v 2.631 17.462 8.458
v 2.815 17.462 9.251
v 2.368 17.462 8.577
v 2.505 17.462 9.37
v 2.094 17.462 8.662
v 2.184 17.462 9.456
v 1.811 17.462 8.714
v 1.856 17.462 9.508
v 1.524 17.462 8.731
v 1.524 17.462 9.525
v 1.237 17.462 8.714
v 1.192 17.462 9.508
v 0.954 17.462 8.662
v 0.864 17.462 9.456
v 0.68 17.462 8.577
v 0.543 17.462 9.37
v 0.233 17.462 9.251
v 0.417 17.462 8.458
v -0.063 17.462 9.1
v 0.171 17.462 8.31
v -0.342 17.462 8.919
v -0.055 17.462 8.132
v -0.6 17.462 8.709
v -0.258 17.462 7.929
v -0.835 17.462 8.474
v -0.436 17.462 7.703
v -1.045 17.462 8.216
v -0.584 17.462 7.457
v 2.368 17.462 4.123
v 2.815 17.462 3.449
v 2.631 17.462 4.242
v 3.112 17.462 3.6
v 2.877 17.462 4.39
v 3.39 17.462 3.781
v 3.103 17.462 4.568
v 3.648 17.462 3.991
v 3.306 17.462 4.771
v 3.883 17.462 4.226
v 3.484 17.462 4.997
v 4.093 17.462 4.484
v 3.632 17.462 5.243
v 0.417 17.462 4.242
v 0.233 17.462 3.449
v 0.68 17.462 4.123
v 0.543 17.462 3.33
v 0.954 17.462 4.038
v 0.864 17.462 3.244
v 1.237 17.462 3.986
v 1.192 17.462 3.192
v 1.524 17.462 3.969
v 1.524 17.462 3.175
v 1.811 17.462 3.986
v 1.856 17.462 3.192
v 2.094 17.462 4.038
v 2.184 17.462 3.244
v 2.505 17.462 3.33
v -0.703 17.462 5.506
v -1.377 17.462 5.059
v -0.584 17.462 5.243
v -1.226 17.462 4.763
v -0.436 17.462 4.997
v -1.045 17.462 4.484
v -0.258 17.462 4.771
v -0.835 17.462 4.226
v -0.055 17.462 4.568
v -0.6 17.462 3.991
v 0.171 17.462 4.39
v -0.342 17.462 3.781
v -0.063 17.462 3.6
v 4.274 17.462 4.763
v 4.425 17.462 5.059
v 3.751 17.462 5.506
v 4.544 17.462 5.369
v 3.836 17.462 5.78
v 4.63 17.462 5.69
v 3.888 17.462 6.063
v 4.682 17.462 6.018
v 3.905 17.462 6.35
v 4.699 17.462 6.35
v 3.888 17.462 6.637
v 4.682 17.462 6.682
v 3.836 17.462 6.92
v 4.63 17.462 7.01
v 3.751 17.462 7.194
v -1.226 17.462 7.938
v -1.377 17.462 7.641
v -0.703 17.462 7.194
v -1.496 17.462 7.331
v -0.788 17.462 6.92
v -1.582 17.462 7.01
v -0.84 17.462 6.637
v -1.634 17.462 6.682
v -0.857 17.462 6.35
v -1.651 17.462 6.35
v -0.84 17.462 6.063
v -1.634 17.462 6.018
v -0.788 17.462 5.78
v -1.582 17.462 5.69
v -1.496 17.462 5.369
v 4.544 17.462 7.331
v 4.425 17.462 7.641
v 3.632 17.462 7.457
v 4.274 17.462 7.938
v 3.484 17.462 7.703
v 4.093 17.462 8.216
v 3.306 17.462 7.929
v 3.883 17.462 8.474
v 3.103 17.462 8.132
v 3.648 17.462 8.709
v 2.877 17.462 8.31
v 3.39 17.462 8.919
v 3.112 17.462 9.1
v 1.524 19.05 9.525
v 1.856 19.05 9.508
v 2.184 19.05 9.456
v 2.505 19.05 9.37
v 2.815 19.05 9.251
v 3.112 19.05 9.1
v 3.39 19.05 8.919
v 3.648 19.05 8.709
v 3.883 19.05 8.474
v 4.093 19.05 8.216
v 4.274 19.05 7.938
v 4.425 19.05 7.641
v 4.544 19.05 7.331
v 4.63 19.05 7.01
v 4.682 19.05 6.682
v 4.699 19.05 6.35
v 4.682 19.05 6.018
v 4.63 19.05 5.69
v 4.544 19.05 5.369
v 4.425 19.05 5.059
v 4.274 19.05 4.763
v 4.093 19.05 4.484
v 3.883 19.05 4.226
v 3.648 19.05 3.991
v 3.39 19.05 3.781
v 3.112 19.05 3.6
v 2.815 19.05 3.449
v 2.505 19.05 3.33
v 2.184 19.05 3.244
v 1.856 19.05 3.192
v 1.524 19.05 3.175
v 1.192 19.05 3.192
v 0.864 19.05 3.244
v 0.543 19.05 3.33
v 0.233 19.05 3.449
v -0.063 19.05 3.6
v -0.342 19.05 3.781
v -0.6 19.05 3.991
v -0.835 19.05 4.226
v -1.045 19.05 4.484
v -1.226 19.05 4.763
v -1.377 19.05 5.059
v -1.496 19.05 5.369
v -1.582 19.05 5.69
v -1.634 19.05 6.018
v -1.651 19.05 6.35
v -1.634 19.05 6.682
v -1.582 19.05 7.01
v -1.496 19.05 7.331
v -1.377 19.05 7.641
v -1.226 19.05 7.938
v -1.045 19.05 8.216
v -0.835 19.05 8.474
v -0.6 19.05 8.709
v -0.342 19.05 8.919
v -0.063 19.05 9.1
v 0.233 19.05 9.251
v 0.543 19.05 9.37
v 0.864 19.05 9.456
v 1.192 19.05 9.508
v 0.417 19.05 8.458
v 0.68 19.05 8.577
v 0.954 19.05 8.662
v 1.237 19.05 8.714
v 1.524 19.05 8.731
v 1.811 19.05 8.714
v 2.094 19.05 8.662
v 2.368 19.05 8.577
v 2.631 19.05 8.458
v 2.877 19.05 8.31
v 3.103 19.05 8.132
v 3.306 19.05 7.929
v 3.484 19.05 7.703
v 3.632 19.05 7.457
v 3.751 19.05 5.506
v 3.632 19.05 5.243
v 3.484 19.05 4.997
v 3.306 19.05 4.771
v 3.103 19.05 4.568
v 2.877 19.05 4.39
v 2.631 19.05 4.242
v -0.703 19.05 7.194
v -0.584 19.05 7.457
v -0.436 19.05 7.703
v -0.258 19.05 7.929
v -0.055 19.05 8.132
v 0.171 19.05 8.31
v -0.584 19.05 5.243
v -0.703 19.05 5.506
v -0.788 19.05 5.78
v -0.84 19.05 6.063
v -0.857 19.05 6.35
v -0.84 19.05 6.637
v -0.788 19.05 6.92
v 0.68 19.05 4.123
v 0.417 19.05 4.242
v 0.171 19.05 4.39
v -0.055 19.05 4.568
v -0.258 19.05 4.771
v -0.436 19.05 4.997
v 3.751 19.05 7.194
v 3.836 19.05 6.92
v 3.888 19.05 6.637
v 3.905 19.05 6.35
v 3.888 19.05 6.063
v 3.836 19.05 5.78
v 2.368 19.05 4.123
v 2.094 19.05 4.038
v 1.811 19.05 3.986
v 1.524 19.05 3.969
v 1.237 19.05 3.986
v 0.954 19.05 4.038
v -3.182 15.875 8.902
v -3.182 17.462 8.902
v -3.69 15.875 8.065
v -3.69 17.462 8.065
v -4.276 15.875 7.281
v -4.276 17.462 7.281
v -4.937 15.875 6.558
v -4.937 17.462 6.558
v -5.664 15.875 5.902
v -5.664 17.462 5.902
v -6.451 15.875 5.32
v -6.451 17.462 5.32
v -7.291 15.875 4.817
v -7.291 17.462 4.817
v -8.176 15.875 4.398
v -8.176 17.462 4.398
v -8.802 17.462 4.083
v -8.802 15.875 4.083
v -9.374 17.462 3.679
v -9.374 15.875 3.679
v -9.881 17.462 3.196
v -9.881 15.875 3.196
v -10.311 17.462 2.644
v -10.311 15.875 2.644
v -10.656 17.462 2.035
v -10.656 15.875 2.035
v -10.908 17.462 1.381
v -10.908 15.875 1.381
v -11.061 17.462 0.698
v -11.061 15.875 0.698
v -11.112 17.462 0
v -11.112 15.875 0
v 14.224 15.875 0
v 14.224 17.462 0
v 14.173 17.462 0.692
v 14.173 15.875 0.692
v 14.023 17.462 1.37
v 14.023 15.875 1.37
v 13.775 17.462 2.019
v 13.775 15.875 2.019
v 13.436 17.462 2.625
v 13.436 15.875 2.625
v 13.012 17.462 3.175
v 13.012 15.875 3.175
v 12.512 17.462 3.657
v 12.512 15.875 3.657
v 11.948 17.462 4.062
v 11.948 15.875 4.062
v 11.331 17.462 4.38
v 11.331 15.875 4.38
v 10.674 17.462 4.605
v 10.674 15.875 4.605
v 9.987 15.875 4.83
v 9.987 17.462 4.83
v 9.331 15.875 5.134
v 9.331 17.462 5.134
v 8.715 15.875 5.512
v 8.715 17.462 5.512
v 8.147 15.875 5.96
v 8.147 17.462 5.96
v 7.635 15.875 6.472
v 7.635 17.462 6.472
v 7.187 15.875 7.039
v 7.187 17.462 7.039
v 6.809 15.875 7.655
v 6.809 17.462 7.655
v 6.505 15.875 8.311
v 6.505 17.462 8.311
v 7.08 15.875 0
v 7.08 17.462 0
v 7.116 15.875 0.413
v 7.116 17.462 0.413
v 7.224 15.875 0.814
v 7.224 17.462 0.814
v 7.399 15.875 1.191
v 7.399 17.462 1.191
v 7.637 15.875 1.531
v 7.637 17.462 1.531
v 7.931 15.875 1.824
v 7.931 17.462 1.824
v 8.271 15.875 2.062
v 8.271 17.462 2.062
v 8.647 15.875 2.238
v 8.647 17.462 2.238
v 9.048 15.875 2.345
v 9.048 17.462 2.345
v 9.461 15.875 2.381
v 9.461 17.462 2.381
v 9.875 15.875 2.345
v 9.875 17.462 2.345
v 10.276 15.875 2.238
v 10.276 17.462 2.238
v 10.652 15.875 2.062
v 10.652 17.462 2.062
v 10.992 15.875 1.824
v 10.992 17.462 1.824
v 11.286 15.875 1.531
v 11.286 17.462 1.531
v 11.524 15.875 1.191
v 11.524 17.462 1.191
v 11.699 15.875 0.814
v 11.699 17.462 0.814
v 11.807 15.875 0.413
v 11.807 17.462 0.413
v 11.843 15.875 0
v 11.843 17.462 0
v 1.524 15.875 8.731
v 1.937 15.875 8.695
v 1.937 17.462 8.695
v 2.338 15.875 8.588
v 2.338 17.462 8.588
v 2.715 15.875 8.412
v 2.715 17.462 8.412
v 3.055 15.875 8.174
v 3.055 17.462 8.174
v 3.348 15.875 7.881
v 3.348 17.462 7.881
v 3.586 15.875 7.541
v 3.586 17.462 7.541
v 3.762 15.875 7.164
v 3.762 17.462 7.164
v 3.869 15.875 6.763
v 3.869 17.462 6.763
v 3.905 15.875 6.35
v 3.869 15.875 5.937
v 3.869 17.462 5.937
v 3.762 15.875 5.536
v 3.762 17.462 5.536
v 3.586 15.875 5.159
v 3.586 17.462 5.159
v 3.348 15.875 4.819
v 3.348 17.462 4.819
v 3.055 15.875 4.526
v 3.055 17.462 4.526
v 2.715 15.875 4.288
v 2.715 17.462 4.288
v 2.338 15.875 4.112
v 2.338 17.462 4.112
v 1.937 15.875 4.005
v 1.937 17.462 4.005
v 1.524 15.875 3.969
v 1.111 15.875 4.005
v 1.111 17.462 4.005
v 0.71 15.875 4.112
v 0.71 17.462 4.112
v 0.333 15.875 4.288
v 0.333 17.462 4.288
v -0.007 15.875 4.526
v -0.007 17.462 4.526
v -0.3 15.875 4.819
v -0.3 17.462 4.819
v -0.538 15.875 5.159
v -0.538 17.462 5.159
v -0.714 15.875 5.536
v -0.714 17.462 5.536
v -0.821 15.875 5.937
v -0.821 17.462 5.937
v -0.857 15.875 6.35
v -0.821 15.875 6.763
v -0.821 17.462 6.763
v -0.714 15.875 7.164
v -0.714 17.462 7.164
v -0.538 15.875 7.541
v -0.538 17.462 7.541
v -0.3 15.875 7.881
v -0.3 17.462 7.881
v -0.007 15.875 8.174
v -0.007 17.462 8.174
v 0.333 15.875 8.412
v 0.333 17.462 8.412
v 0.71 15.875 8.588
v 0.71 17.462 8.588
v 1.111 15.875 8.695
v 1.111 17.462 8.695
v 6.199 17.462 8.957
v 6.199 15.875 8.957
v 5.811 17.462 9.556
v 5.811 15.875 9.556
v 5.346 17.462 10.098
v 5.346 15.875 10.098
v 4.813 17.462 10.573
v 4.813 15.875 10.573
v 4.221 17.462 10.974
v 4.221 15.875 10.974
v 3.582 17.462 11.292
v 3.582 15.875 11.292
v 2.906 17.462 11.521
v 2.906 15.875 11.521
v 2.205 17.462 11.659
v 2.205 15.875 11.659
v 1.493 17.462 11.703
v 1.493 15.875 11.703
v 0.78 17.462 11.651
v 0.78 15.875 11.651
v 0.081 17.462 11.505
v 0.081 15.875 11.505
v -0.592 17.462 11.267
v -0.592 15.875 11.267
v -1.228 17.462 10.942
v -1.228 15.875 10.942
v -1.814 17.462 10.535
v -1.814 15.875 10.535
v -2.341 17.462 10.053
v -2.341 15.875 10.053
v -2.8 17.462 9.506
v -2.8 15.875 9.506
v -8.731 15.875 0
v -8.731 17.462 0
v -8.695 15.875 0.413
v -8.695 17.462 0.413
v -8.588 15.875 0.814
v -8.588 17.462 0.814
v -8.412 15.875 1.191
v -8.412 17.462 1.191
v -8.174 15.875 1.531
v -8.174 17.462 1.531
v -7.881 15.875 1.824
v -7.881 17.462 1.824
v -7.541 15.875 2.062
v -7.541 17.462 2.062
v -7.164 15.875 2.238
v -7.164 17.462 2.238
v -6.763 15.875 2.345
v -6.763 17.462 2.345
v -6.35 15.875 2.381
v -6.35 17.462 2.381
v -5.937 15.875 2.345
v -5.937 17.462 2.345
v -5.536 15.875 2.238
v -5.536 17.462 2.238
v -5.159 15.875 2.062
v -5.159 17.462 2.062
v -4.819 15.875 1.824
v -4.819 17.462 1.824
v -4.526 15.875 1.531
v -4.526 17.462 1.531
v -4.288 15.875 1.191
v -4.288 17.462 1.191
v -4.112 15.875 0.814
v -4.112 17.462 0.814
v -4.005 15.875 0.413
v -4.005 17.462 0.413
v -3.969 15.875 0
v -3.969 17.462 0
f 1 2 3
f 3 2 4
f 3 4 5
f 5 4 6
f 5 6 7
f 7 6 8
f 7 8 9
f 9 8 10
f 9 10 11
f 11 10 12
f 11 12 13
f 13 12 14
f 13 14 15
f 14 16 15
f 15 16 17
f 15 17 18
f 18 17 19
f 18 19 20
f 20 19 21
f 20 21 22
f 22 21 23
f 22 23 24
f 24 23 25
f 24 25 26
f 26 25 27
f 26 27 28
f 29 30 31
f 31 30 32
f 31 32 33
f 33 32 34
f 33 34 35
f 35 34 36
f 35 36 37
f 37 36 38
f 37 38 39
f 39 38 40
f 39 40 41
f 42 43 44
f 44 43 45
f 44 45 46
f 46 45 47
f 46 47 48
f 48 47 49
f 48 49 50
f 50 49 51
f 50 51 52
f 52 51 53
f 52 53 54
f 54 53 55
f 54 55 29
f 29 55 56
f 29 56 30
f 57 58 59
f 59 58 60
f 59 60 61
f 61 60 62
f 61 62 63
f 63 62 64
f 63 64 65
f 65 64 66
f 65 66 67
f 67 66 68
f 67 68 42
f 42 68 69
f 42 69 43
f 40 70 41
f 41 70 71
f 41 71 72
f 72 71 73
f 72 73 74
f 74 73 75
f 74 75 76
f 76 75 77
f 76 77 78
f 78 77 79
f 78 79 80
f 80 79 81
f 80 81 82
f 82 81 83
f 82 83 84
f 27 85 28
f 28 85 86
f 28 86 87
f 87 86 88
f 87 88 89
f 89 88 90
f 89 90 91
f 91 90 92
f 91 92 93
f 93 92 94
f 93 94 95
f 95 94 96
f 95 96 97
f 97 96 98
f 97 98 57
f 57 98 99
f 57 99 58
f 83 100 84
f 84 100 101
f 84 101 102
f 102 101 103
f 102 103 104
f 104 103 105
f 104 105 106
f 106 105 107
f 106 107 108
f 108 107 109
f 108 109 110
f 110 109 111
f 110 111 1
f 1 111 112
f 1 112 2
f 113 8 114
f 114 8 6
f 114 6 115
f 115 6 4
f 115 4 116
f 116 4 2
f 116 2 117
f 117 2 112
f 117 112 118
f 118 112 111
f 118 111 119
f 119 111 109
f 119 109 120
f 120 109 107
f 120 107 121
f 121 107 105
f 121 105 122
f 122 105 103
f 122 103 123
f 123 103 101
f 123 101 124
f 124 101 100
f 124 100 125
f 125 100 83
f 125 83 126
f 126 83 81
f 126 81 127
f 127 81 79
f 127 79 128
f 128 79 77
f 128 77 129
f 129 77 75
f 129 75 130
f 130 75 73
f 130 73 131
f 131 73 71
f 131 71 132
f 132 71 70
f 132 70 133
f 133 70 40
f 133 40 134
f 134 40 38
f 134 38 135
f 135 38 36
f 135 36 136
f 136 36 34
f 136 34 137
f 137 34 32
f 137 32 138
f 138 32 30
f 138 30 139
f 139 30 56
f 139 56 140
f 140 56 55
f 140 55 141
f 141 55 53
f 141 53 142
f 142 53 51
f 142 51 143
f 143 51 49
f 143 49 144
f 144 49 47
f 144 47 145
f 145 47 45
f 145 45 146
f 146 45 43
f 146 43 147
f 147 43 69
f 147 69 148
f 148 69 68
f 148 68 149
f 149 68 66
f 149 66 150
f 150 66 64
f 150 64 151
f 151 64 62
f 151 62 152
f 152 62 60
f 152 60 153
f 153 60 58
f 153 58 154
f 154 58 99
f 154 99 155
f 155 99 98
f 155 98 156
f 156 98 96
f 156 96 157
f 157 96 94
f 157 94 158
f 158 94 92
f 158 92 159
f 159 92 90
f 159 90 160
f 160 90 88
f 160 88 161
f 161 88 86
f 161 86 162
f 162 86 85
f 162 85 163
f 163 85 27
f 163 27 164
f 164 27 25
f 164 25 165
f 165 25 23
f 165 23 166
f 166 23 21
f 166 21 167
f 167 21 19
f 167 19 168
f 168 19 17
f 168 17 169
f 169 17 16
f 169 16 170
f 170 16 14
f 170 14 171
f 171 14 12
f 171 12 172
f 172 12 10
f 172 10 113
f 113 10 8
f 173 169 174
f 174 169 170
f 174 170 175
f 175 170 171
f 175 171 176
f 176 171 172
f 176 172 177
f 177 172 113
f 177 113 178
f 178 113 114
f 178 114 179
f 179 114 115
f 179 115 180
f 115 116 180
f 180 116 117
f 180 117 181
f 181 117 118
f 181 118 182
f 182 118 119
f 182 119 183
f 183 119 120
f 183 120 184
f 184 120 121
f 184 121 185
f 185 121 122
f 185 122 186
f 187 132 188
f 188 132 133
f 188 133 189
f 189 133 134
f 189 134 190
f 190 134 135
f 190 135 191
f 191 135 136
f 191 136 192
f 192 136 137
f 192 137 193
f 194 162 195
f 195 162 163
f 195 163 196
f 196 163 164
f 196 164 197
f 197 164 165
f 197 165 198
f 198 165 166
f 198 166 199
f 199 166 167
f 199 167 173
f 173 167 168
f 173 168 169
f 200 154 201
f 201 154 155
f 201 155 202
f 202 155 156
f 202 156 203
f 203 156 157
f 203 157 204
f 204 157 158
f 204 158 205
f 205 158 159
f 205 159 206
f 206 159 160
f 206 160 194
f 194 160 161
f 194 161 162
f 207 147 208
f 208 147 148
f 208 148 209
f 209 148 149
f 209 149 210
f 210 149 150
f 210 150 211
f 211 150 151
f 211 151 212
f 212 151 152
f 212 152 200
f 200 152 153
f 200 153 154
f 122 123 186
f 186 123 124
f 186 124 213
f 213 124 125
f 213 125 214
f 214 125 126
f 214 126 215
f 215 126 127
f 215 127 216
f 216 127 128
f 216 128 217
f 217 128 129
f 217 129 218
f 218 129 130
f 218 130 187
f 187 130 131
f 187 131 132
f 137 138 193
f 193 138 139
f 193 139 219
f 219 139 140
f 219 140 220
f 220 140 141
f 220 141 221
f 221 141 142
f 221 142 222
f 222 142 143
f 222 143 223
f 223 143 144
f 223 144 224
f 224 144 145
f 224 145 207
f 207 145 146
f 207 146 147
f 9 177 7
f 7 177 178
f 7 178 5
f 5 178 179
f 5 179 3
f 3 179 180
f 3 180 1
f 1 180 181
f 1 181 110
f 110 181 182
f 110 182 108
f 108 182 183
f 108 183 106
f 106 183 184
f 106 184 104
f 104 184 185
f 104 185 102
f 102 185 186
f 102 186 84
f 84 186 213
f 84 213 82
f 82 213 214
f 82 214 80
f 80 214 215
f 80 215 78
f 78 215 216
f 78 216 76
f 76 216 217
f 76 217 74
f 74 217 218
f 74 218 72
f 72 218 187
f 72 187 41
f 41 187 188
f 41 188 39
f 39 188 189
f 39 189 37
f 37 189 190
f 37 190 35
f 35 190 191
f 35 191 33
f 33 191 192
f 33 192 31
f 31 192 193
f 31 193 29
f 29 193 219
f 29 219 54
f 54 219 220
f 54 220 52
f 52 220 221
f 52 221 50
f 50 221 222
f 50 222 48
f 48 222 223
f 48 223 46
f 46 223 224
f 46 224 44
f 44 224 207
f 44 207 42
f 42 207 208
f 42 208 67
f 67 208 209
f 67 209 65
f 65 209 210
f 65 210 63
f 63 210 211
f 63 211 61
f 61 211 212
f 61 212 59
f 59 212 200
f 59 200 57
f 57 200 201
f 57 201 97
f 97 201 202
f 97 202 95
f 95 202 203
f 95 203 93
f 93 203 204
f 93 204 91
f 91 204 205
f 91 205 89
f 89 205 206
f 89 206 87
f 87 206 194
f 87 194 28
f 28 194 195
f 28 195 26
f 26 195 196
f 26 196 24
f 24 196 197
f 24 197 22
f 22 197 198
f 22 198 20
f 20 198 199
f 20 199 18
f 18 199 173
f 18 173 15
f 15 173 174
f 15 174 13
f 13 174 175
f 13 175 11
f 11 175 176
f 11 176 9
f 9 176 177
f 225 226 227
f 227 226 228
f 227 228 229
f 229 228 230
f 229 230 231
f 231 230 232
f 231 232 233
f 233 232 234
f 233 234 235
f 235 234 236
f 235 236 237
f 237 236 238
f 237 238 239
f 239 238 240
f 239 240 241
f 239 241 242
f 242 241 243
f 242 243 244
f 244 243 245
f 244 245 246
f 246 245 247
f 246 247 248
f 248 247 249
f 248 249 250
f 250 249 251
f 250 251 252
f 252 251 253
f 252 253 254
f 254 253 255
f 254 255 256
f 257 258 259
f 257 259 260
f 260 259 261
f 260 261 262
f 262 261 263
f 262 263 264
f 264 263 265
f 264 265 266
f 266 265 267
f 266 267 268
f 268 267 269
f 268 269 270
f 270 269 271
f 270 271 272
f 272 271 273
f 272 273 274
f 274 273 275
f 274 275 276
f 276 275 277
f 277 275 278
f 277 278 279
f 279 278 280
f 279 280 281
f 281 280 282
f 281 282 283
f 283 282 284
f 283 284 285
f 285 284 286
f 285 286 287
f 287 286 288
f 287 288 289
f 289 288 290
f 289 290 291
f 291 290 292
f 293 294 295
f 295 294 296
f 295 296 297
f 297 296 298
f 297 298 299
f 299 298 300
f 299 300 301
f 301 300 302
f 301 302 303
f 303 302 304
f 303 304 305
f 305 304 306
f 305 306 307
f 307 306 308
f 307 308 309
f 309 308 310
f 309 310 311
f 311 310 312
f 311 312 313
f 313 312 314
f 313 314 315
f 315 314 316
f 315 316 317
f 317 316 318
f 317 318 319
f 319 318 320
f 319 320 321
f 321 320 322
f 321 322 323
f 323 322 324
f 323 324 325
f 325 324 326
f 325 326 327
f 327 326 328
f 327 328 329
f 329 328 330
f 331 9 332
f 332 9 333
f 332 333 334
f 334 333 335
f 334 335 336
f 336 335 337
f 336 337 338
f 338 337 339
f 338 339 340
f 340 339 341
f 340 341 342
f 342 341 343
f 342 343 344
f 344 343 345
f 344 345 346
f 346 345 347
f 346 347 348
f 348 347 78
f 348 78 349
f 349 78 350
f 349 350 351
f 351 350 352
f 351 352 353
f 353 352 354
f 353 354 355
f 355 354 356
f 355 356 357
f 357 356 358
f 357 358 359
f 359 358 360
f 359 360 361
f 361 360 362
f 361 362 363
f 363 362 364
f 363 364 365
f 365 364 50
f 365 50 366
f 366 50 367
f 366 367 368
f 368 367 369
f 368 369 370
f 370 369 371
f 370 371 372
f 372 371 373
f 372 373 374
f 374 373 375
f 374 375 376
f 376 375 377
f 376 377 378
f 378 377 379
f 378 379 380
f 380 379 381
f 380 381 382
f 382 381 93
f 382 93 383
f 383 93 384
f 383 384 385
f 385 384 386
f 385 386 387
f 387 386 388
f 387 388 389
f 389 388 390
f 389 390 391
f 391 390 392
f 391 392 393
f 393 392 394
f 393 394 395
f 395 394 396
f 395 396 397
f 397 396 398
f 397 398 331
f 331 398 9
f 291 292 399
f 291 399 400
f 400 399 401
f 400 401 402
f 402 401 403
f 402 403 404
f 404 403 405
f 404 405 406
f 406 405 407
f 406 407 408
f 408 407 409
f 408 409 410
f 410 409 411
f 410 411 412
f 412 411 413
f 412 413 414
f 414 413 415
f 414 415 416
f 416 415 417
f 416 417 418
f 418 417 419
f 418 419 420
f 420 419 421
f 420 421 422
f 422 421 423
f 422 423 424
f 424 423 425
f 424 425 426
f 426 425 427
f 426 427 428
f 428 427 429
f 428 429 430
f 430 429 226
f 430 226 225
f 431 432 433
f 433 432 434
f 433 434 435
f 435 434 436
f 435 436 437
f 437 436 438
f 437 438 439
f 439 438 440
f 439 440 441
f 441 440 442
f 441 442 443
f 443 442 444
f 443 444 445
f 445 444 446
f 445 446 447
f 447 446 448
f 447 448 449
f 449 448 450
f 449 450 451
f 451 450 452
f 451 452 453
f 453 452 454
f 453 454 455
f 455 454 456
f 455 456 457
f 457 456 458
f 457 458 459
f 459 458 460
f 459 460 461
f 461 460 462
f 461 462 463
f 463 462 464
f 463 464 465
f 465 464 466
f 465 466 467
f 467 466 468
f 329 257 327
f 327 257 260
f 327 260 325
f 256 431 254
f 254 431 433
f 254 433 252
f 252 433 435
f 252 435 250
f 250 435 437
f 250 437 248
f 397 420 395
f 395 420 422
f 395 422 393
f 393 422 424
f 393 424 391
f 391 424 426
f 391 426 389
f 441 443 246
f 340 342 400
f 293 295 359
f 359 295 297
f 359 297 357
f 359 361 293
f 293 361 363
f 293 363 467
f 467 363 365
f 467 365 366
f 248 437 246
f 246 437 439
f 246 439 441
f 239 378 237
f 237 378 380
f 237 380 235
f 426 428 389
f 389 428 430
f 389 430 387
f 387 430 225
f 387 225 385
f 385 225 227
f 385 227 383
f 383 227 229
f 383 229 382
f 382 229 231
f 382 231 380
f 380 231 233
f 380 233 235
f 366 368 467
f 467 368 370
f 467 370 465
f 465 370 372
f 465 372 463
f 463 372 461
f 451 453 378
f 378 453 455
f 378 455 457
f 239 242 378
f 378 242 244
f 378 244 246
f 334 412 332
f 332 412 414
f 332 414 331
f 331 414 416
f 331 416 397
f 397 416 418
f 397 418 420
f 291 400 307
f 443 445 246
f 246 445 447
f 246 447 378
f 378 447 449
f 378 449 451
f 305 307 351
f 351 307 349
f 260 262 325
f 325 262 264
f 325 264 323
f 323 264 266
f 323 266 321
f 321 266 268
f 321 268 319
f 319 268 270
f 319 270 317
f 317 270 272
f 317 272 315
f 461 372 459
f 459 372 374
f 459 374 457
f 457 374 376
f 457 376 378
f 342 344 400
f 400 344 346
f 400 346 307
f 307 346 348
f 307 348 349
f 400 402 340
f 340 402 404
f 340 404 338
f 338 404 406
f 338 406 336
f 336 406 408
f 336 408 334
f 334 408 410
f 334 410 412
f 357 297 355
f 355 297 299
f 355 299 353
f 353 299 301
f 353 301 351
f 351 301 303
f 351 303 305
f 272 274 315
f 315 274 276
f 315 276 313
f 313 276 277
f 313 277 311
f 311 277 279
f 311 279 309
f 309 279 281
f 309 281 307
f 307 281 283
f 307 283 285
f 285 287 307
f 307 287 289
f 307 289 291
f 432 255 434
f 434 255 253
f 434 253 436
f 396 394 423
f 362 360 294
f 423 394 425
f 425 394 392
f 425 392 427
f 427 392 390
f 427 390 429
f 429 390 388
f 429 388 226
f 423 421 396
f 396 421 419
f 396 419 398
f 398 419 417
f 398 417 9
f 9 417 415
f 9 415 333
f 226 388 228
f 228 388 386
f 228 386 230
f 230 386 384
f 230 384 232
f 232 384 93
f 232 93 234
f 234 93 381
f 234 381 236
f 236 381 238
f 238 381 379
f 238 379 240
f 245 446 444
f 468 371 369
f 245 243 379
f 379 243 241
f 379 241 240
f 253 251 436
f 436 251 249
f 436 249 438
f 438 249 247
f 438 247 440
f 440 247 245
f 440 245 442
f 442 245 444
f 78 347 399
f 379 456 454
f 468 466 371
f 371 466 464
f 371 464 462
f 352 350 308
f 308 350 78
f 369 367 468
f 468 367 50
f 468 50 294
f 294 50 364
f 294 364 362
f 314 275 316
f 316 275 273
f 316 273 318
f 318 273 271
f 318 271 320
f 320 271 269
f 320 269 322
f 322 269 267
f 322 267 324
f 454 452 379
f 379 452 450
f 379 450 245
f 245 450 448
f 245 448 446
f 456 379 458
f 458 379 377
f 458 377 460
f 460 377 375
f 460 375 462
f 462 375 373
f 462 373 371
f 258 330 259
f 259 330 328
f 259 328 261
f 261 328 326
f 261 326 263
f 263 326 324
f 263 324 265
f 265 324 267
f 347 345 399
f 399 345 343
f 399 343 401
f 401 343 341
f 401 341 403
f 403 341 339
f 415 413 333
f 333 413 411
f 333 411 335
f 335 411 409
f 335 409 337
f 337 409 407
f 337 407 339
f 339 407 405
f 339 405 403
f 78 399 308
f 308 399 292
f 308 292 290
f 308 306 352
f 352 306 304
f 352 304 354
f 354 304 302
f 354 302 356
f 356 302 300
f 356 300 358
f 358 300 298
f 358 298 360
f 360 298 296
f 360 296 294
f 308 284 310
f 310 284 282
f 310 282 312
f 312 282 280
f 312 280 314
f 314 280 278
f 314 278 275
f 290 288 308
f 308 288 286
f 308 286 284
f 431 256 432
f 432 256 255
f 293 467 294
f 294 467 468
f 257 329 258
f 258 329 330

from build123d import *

# Parameters (mm, degrees)
SKETCH1_R           = 2.38125
BOSS_EXTRUDE1_DEPTH = 1.5875
SKETCH2_R           = 3.175
BOSS_EXTRUDE2_DEPTH = 1.5875
SKETCH3_R           = 2.38125
BOSS_EXTRUDE3_DEPTH = 19.05
SKETCH4_R           = 3.175
BOSS_EXTRUDE4_DEPTH = 1.5875
SKETCH5_R           = 2.38125
BOSS_EXTRUDE5_DEPTH = 1.5875
SKETCH6_R           = 2.38125
CUT_EXTRUDE1_DEPTH  = 28.662025878
SKETCH7_W           = 40.69090725
SKETCH7_H           = 20.005301762
CUT_EXTRUDE2_DEPTH  = 26.381492779
CUT_EXTRUDE3_DEPTH  = 19.487872394


with BuildPart() as part:
    # Sketch1 → Boss-Extrude1 (new body)
    with BuildSketch(Plane(origin=(0, 0, 0), x_dir=(1, 0, 0), z_dir=(0, 1, 0))):
        with BuildLine():
            Line((9.398005644, 4.762076723), (-6.35, 4.7625))
            ThreePointArc((-6.35, 4.7625), (-11.020584629, 0.931152767), (-8.176363381, -4.398386414))
            ThreePointArc((-8.176363381, -4.398386414), (-5.292234705, -6.221263486), (-3.181508348, -8.901918869))
            ThreePointArc((-3.181508348, -8.901918869), (1.849687492, -11.693035316), (6.504625866, -8.311495529))
            ThreePointArc((6.504625866, -8.311495529), (8.146827792, -5.96033805), (10.67447942, -4.60544104))
            ThreePointArc((10.67447942, -4.60544104), (14.180390361, 0.643024113), (9.398005644, 4.762076723))
        make_face()
        with Locations(Location((-6.35, 0, 0), (0, 0, 270))):
            Circle(SKETCH1_R, mode=Mode.SUBTRACT)
        with Locations(Location((9.4615, 0, 0), (0, 0, 270))):
            Circle(SKETCH1_R, mode=Mode.SUBTRACT)
        with Locations(Location((1.524, -6.35, 0), (0, 0, 270))):
            Circle(SKETCH1_R, mode=Mode.SUBTRACT)
    extrude(amount=BOSS_EXTRUDE1_DEPTH)

    # Sketch2 → Boss-Extrude2 (add)
    with BuildSketch(Plane.XZ):
        with Locations(Location((1.524, 6.35, 0), (0, 0, 90))):
            Circle(SKETCH2_R)
    extrude(amount=BOSS_EXTRUDE2_DEPTH)

    # Sketch3 → Boss-Extrude3 (add)
    with BuildSketch(Plane(origin=(0, 0, 0), x_dir=(1, 0, 0), z_dir=(0, 1, 0))):
        with Locations(Location((1.524, -6.35, 0), (0, 0, 90))):
            Circle(SKETCH3_R)
    extrude(amount=BOSS_EXTRUDE3_DEPTH)

    # Sketch4 → Boss-Extrude4 (add)
    with BuildSketch(Plane(origin=(0, 19.05, 0), x_dir=(1, 0, 0), z_dir=(0, 1, 0))):
        with Locations(Location((1.524, -6.35, 0), (0, 0, 270))):
            Circle(SKETCH4_R)
    extrude(amount=-BOSS_EXTRUDE4_DEPTH)

    # Sketch6 → Cut-Extrude1 (cut, through all)
    with BuildSketch(Plane(origin=(0, 19.05, 0), x_dir=(1, 0, 0), z_dir=(0, 1, 0))):
        with Locations(Location((1.524, -6.35, 0), (0, 0, 90))):
            Circle(SKETCH6_R)
    extrude(amount=-CUT_EXTRUDE1_DEPTH, mode=Mode.SUBTRACT)


with BuildPart() as body_2:
    # Sketch5 → Boss-Extrude5 (new body)
    with BuildSketch(Plane.XZ.offset(-17.4625)):
        with BuildLine():
            ThreePointArc((-8.176363381, 4.398386414), (-11.020584629, -0.931152767), (-6.35, -4.7625))
            Line((-6.35, -4.7625), (9.4615, -4.7625))
            ThreePointArc((9.4615, -4.7625), (14.184572051, -0.611552653), (10.67447942, 4.60544104))
            ThreePointArc((10.67447942, 4.60544104), (8.146827792, 5.96033805), (6.504625866, 8.311495529))
            ThreePointArc((6.504625866, 8.311495529), (1.849687492, 11.693035316), (-3.181508348, 8.901918869))
            ThreePointArc((-3.181508348, 8.901918869), (-5.292234705, 6.221263486), (-8.176363381, 4.398386414))
        make_face()
        with Locations(Location((-6.35, 0, 0), (0, 0, 270))):
            Circle(SKETCH5_R, mode=Mode.SUBTRACT)
        with Locations(Location((9.4615, 0, 0), (0, 0, 270))):
            Circle(SKETCH5_R, mode=Mode.SUBTRACT)
        with Locations(Location((1.524, 6.35, 0), (0, 0, 270))):
            Circle(SKETCH5_R, mode=Mode.SUBTRACT)
    extrude(amount=BOSS_EXTRUDE5_DEPTH)

    # Sketch8 → Cut-Extrude3 (cut, through all)
    with BuildSketch(Plane(origin=(0, 17.4625, 0), x_dir=(1, 0, 0), z_dir=(0, 1, 0))):
        with BuildLine():
            ThreePointArc((7.08025, 0), (9.4615, 2.38125), (11.84275, 0))
            Line((11.84275, 0), (14.224, 0))
            ThreePointArc((14.224, 0), (12.829096045, 3.367596045), (9.4615, 4.7625))
            Line((9.4615, 4.7625), (-6.35, 4.7625))
            ThreePointArc((-6.35, 4.7625), (-9.717596045, 3.367596045), (-11.1125, 0))
            Line((-11.1125, 0), (-8.73125, 0))
            ThreePointArc((-8.73125, 0), (-6.35, 2.38125), (-3.96875, 0))
            Line((-3.96875, 0), (7.08025, 0))
        make_face()
    extrude(amount=-CUT_EXTRUDE3_DEPTH, mode=Mode.SUBTRACT)


with BuildPart() as cut_extrude1_piece_1:
    # of the separate pieces the step leaves, piece 1, a body of its own (cut_extrude1_pieces)
    add(part.part.solids().sort_by_distance((9.398005644, 0, -4.762076723))[0])

    # Sketch7 → Cut-Extrude2 (cut, through all)
    with BuildSketch(Plane(origin=(0, 1.5875, 0), x_dir=(1, 0, 0), z_dir=(0, 1, 0))):
        with Locations((0.04887425, -4.128782639)):
            Rectangle(SKETCH7_W, SKETCH7_H)
    extrude(amount=-CUT_EXTRUDE2_DEPTH, mode=Mode.SUBTRACT)


with BuildPart() as cut_extrude1_piece_2:
    # of the separate pieces the step leaves, piece 2, a body of its own (cut_extrude1_pieces)
    add(part.part.solids().sort_by_distance((1.524, 17.4625, 9.525))[0])


solid = Compound([body_2.part, cut_extrude1_piece_2.part])
